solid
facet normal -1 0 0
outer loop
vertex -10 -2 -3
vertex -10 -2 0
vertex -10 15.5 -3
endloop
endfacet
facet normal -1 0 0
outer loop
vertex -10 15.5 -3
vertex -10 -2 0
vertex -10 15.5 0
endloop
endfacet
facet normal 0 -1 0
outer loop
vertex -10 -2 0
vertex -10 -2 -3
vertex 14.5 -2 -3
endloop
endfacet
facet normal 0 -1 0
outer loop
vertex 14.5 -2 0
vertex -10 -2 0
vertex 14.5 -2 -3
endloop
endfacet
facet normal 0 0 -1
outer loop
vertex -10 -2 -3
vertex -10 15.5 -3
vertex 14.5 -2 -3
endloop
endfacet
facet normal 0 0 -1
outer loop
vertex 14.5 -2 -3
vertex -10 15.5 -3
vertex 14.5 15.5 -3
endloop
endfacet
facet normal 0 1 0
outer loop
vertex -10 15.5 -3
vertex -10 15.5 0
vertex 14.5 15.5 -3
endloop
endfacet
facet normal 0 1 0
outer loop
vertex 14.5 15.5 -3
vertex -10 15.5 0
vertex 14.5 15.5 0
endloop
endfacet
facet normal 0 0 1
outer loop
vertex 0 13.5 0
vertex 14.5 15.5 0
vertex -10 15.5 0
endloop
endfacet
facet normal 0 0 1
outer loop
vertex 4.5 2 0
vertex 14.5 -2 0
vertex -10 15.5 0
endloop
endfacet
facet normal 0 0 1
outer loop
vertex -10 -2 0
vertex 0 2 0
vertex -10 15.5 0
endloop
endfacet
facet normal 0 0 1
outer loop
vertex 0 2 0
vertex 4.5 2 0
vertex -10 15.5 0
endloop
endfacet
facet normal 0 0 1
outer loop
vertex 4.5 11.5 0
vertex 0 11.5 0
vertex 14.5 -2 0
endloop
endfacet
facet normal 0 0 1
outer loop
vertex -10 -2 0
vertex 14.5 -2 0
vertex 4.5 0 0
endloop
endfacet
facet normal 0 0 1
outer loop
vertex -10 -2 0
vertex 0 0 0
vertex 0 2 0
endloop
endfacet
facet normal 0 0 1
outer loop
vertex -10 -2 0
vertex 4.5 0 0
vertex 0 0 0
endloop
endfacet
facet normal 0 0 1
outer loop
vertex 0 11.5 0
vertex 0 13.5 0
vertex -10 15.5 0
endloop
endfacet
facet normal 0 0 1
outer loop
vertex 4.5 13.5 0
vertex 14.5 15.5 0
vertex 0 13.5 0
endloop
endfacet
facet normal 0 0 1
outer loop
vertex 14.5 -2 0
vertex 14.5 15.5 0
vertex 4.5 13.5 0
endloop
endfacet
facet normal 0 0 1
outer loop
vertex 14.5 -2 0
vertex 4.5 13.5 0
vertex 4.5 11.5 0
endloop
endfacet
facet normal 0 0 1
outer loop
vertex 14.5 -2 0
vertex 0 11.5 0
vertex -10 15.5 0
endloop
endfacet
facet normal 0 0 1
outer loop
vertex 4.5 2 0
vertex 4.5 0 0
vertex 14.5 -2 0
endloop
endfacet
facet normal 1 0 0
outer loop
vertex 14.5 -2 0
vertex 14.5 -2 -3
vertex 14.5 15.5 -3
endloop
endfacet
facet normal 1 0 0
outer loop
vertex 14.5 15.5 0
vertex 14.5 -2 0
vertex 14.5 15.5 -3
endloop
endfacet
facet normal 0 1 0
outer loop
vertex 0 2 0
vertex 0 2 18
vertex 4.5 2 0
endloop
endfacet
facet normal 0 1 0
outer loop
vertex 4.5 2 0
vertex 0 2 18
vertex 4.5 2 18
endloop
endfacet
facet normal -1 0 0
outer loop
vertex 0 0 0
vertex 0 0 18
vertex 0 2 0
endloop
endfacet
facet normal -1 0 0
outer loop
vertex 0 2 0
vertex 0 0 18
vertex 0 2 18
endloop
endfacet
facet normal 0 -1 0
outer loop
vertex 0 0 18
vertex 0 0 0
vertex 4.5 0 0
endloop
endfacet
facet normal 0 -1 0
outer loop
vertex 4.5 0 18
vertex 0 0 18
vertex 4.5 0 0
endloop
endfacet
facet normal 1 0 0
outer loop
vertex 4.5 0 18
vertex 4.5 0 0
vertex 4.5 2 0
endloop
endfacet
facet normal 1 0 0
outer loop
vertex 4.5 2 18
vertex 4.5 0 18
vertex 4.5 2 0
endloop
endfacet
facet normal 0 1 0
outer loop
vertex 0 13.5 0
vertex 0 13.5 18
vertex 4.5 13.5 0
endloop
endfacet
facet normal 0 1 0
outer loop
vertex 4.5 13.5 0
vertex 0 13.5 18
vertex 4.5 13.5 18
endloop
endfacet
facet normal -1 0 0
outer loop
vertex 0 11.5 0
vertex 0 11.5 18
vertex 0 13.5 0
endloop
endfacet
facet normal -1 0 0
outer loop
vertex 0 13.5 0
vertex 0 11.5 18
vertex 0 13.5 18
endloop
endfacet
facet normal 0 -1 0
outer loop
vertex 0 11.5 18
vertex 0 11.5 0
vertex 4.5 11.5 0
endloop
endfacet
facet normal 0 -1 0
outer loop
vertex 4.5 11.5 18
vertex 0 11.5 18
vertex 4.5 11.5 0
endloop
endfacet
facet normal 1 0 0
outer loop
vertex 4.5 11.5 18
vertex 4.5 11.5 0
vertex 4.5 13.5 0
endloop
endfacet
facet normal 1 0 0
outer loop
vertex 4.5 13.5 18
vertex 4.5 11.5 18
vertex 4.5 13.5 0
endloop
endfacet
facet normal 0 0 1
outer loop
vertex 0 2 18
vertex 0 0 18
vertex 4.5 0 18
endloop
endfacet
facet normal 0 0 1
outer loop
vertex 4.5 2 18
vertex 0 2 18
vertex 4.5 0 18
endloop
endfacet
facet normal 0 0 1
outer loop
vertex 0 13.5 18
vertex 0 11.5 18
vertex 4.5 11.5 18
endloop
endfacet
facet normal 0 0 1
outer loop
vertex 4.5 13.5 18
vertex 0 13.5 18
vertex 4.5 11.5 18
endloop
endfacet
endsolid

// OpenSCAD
cube([4.5, 2, 18]);
translate([0, 11.5, 0]) cube([4.5, 2, 18]);

translate([-10, -2, -3]) cube([24.5, 17.5, 3]);
